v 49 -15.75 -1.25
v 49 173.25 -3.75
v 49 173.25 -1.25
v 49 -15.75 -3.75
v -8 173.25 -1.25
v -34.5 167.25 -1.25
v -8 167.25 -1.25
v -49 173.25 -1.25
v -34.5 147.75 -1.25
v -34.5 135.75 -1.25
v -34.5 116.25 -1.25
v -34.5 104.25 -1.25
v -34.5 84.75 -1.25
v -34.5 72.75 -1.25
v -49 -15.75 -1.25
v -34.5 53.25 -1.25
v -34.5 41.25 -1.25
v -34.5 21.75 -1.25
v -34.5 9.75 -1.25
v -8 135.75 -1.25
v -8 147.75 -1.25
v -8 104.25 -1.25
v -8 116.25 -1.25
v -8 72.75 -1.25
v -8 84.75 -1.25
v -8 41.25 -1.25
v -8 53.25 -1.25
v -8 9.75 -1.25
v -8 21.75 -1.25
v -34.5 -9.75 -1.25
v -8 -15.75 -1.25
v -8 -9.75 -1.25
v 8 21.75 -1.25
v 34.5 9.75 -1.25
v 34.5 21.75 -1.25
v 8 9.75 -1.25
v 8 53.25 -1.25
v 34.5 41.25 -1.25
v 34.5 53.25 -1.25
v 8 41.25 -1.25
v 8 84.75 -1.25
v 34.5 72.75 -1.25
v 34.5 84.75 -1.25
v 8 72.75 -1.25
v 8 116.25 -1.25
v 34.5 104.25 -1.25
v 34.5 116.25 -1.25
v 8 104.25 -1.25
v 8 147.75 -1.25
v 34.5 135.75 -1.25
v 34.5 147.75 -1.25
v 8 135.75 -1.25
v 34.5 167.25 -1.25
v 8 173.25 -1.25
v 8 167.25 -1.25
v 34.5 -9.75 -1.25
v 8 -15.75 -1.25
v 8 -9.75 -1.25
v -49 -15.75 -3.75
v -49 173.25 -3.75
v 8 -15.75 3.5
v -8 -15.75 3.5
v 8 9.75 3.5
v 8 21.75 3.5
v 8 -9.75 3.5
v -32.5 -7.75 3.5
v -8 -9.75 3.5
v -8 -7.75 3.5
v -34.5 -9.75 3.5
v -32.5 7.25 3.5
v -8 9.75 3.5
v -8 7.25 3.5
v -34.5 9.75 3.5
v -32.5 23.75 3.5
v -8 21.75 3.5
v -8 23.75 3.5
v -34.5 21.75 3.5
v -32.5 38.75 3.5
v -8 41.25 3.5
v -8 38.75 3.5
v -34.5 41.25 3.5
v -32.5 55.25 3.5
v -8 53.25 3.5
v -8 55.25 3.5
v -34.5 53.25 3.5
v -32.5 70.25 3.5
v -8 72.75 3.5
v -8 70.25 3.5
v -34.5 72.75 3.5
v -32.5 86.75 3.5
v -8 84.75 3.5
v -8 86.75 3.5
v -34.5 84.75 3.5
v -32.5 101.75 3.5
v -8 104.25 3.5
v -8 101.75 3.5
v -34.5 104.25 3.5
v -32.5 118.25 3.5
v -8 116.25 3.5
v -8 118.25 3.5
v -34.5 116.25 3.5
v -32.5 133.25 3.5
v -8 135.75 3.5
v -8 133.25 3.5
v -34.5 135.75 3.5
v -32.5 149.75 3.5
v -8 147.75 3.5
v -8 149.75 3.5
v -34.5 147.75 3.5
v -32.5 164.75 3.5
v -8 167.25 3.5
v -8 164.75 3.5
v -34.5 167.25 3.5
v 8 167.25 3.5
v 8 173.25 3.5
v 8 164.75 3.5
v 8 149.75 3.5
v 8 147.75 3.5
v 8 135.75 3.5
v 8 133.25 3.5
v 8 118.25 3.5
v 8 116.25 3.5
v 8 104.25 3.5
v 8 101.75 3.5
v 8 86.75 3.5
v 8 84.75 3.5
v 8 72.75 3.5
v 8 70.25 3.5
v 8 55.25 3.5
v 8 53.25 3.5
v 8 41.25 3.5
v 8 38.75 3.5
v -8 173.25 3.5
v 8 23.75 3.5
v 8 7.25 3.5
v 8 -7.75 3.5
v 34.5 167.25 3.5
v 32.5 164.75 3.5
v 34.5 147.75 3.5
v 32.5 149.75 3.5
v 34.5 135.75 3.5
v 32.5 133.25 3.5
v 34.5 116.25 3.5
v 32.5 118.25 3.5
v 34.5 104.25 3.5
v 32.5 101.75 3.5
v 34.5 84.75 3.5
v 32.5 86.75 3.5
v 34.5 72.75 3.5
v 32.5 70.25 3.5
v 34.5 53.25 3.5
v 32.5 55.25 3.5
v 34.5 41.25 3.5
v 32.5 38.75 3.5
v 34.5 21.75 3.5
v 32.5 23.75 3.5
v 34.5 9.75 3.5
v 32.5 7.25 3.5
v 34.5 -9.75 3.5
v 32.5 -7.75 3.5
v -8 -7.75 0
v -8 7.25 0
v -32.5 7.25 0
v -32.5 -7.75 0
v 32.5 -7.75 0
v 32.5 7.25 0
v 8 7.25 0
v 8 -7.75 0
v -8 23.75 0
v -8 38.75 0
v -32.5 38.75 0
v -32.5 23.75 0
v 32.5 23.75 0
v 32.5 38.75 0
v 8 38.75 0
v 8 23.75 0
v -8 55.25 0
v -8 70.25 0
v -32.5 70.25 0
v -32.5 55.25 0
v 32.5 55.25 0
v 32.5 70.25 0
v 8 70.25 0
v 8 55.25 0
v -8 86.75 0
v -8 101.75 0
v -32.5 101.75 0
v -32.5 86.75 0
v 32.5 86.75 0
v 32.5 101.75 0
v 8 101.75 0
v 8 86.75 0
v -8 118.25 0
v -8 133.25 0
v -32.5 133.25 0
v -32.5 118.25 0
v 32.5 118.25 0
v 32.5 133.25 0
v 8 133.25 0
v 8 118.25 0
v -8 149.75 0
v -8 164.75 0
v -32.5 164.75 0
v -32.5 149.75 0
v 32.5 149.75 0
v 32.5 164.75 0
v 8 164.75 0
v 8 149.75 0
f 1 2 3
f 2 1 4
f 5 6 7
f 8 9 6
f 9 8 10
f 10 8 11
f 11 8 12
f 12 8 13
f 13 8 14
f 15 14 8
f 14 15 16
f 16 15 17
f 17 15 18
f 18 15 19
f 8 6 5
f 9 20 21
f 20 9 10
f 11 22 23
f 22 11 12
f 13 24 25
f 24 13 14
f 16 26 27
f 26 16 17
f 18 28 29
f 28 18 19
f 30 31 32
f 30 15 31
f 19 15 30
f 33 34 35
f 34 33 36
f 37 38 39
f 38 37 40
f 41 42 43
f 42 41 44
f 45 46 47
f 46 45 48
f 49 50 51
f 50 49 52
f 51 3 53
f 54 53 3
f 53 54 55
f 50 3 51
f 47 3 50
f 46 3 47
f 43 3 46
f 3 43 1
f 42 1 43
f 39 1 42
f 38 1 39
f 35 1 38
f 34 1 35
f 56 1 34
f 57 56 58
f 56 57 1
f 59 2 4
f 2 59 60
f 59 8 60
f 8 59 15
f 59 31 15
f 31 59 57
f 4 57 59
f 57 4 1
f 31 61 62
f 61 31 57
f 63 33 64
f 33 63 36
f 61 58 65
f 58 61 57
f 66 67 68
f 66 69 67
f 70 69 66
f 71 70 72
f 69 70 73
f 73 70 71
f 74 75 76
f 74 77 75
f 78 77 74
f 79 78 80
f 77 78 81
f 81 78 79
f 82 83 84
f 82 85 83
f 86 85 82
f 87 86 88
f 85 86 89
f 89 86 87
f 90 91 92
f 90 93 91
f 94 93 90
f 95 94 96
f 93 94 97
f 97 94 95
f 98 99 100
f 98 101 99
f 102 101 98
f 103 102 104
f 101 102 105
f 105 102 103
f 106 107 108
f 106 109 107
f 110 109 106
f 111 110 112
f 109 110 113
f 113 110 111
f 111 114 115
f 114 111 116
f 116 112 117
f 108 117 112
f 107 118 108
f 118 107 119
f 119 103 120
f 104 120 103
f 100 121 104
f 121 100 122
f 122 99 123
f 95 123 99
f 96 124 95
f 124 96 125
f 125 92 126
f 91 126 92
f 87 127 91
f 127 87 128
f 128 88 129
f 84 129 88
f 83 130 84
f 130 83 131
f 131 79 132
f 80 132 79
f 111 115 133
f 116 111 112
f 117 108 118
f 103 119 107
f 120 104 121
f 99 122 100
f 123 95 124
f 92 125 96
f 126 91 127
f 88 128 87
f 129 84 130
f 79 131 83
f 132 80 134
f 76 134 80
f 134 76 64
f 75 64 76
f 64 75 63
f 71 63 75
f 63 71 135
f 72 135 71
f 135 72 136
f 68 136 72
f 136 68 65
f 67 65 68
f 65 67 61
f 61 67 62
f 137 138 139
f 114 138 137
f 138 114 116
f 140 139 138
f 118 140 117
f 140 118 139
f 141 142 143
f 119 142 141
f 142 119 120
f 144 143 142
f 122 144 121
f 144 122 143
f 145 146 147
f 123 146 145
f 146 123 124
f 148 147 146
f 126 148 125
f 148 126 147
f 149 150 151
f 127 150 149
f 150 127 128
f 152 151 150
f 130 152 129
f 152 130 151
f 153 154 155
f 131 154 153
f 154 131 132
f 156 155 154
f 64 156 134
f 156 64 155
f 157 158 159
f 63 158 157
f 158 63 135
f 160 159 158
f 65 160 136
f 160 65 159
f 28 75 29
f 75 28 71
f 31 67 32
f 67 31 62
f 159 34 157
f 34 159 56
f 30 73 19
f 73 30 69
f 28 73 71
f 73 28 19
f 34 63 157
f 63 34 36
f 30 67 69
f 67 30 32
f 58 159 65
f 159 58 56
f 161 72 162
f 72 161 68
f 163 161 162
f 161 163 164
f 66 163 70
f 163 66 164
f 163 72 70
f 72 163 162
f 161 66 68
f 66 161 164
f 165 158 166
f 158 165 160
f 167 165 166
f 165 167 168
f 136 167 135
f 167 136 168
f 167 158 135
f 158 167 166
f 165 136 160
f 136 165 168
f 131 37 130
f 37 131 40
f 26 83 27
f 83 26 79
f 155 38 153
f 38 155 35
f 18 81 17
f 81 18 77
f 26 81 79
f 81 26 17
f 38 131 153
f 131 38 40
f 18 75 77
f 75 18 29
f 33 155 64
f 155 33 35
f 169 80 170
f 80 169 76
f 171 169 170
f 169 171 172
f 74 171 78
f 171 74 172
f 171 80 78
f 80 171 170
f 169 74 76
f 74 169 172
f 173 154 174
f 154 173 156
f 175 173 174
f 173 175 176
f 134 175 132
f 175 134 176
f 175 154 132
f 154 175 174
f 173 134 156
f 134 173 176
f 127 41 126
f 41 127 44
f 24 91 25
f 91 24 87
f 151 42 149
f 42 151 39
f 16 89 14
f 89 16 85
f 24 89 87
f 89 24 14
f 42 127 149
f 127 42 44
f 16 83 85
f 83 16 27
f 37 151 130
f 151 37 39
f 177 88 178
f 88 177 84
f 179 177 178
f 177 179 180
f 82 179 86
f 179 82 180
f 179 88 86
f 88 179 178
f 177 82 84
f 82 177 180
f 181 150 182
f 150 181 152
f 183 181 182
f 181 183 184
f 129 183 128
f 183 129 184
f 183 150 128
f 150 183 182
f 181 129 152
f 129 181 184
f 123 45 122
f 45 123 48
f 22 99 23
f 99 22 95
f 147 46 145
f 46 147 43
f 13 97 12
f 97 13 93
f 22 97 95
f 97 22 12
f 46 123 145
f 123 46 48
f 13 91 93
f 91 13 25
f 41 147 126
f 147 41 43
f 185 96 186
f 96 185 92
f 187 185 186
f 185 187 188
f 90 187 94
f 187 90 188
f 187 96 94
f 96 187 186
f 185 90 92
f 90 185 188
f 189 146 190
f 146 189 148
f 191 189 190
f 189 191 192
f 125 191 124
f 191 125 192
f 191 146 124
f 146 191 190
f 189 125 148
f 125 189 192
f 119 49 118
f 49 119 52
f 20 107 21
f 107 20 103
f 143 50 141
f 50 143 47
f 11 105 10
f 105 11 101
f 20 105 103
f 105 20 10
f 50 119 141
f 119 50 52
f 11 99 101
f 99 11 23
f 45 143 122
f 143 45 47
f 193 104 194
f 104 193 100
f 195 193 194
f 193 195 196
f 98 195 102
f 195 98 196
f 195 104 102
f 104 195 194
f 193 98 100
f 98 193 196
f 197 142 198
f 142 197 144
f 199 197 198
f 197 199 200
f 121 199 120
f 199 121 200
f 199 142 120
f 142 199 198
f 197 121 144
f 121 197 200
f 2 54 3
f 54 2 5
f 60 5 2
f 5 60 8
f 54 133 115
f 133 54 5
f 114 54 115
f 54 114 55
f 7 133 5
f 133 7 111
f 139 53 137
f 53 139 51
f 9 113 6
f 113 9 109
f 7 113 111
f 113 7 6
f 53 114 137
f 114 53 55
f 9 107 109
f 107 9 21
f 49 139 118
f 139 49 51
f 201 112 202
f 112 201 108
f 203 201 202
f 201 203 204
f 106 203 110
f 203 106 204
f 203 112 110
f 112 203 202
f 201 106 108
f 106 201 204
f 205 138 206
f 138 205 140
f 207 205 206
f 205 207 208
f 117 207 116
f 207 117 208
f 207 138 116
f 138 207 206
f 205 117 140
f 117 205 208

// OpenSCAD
$footW = 24.5;
$footH = 15.5;
$spacer = 16;
$depth = 5;
$rim = 2;
$blockW = 98;
$blockL = $footH + $spacer;

scale([1, 1, 1]) {
union() {
    for (i = [0:5]) {
        translate([0, $blockL * i, 0]) {
            
            difference() {
                union() {
                translate([0, 0, -$depth/2]) { 
                  cube([$blockW, $blockL, $depth/2], true);
                }
                translate([0, 0, 0]) { 
                    cube([$spacer, 
                    $blockL, $depth+2], true);
                }
                translate([0, 0, 0]) { 
                    cube([$footW*2+$spacer + $rim*2, 
                    $footH+$rim*2, $depth+2], true);
                }
                }
                translate([-($footW + $spacer/2), -$footH/2, 0]) {
                    cube([$footW, $footH-.5, 30], false);
                }
                translate([$spacer / 2, -$footH/2, 0]) {
                    cube([$footW, $footH-.5, 30], false);
                }
            }
        }
    }
}
}
